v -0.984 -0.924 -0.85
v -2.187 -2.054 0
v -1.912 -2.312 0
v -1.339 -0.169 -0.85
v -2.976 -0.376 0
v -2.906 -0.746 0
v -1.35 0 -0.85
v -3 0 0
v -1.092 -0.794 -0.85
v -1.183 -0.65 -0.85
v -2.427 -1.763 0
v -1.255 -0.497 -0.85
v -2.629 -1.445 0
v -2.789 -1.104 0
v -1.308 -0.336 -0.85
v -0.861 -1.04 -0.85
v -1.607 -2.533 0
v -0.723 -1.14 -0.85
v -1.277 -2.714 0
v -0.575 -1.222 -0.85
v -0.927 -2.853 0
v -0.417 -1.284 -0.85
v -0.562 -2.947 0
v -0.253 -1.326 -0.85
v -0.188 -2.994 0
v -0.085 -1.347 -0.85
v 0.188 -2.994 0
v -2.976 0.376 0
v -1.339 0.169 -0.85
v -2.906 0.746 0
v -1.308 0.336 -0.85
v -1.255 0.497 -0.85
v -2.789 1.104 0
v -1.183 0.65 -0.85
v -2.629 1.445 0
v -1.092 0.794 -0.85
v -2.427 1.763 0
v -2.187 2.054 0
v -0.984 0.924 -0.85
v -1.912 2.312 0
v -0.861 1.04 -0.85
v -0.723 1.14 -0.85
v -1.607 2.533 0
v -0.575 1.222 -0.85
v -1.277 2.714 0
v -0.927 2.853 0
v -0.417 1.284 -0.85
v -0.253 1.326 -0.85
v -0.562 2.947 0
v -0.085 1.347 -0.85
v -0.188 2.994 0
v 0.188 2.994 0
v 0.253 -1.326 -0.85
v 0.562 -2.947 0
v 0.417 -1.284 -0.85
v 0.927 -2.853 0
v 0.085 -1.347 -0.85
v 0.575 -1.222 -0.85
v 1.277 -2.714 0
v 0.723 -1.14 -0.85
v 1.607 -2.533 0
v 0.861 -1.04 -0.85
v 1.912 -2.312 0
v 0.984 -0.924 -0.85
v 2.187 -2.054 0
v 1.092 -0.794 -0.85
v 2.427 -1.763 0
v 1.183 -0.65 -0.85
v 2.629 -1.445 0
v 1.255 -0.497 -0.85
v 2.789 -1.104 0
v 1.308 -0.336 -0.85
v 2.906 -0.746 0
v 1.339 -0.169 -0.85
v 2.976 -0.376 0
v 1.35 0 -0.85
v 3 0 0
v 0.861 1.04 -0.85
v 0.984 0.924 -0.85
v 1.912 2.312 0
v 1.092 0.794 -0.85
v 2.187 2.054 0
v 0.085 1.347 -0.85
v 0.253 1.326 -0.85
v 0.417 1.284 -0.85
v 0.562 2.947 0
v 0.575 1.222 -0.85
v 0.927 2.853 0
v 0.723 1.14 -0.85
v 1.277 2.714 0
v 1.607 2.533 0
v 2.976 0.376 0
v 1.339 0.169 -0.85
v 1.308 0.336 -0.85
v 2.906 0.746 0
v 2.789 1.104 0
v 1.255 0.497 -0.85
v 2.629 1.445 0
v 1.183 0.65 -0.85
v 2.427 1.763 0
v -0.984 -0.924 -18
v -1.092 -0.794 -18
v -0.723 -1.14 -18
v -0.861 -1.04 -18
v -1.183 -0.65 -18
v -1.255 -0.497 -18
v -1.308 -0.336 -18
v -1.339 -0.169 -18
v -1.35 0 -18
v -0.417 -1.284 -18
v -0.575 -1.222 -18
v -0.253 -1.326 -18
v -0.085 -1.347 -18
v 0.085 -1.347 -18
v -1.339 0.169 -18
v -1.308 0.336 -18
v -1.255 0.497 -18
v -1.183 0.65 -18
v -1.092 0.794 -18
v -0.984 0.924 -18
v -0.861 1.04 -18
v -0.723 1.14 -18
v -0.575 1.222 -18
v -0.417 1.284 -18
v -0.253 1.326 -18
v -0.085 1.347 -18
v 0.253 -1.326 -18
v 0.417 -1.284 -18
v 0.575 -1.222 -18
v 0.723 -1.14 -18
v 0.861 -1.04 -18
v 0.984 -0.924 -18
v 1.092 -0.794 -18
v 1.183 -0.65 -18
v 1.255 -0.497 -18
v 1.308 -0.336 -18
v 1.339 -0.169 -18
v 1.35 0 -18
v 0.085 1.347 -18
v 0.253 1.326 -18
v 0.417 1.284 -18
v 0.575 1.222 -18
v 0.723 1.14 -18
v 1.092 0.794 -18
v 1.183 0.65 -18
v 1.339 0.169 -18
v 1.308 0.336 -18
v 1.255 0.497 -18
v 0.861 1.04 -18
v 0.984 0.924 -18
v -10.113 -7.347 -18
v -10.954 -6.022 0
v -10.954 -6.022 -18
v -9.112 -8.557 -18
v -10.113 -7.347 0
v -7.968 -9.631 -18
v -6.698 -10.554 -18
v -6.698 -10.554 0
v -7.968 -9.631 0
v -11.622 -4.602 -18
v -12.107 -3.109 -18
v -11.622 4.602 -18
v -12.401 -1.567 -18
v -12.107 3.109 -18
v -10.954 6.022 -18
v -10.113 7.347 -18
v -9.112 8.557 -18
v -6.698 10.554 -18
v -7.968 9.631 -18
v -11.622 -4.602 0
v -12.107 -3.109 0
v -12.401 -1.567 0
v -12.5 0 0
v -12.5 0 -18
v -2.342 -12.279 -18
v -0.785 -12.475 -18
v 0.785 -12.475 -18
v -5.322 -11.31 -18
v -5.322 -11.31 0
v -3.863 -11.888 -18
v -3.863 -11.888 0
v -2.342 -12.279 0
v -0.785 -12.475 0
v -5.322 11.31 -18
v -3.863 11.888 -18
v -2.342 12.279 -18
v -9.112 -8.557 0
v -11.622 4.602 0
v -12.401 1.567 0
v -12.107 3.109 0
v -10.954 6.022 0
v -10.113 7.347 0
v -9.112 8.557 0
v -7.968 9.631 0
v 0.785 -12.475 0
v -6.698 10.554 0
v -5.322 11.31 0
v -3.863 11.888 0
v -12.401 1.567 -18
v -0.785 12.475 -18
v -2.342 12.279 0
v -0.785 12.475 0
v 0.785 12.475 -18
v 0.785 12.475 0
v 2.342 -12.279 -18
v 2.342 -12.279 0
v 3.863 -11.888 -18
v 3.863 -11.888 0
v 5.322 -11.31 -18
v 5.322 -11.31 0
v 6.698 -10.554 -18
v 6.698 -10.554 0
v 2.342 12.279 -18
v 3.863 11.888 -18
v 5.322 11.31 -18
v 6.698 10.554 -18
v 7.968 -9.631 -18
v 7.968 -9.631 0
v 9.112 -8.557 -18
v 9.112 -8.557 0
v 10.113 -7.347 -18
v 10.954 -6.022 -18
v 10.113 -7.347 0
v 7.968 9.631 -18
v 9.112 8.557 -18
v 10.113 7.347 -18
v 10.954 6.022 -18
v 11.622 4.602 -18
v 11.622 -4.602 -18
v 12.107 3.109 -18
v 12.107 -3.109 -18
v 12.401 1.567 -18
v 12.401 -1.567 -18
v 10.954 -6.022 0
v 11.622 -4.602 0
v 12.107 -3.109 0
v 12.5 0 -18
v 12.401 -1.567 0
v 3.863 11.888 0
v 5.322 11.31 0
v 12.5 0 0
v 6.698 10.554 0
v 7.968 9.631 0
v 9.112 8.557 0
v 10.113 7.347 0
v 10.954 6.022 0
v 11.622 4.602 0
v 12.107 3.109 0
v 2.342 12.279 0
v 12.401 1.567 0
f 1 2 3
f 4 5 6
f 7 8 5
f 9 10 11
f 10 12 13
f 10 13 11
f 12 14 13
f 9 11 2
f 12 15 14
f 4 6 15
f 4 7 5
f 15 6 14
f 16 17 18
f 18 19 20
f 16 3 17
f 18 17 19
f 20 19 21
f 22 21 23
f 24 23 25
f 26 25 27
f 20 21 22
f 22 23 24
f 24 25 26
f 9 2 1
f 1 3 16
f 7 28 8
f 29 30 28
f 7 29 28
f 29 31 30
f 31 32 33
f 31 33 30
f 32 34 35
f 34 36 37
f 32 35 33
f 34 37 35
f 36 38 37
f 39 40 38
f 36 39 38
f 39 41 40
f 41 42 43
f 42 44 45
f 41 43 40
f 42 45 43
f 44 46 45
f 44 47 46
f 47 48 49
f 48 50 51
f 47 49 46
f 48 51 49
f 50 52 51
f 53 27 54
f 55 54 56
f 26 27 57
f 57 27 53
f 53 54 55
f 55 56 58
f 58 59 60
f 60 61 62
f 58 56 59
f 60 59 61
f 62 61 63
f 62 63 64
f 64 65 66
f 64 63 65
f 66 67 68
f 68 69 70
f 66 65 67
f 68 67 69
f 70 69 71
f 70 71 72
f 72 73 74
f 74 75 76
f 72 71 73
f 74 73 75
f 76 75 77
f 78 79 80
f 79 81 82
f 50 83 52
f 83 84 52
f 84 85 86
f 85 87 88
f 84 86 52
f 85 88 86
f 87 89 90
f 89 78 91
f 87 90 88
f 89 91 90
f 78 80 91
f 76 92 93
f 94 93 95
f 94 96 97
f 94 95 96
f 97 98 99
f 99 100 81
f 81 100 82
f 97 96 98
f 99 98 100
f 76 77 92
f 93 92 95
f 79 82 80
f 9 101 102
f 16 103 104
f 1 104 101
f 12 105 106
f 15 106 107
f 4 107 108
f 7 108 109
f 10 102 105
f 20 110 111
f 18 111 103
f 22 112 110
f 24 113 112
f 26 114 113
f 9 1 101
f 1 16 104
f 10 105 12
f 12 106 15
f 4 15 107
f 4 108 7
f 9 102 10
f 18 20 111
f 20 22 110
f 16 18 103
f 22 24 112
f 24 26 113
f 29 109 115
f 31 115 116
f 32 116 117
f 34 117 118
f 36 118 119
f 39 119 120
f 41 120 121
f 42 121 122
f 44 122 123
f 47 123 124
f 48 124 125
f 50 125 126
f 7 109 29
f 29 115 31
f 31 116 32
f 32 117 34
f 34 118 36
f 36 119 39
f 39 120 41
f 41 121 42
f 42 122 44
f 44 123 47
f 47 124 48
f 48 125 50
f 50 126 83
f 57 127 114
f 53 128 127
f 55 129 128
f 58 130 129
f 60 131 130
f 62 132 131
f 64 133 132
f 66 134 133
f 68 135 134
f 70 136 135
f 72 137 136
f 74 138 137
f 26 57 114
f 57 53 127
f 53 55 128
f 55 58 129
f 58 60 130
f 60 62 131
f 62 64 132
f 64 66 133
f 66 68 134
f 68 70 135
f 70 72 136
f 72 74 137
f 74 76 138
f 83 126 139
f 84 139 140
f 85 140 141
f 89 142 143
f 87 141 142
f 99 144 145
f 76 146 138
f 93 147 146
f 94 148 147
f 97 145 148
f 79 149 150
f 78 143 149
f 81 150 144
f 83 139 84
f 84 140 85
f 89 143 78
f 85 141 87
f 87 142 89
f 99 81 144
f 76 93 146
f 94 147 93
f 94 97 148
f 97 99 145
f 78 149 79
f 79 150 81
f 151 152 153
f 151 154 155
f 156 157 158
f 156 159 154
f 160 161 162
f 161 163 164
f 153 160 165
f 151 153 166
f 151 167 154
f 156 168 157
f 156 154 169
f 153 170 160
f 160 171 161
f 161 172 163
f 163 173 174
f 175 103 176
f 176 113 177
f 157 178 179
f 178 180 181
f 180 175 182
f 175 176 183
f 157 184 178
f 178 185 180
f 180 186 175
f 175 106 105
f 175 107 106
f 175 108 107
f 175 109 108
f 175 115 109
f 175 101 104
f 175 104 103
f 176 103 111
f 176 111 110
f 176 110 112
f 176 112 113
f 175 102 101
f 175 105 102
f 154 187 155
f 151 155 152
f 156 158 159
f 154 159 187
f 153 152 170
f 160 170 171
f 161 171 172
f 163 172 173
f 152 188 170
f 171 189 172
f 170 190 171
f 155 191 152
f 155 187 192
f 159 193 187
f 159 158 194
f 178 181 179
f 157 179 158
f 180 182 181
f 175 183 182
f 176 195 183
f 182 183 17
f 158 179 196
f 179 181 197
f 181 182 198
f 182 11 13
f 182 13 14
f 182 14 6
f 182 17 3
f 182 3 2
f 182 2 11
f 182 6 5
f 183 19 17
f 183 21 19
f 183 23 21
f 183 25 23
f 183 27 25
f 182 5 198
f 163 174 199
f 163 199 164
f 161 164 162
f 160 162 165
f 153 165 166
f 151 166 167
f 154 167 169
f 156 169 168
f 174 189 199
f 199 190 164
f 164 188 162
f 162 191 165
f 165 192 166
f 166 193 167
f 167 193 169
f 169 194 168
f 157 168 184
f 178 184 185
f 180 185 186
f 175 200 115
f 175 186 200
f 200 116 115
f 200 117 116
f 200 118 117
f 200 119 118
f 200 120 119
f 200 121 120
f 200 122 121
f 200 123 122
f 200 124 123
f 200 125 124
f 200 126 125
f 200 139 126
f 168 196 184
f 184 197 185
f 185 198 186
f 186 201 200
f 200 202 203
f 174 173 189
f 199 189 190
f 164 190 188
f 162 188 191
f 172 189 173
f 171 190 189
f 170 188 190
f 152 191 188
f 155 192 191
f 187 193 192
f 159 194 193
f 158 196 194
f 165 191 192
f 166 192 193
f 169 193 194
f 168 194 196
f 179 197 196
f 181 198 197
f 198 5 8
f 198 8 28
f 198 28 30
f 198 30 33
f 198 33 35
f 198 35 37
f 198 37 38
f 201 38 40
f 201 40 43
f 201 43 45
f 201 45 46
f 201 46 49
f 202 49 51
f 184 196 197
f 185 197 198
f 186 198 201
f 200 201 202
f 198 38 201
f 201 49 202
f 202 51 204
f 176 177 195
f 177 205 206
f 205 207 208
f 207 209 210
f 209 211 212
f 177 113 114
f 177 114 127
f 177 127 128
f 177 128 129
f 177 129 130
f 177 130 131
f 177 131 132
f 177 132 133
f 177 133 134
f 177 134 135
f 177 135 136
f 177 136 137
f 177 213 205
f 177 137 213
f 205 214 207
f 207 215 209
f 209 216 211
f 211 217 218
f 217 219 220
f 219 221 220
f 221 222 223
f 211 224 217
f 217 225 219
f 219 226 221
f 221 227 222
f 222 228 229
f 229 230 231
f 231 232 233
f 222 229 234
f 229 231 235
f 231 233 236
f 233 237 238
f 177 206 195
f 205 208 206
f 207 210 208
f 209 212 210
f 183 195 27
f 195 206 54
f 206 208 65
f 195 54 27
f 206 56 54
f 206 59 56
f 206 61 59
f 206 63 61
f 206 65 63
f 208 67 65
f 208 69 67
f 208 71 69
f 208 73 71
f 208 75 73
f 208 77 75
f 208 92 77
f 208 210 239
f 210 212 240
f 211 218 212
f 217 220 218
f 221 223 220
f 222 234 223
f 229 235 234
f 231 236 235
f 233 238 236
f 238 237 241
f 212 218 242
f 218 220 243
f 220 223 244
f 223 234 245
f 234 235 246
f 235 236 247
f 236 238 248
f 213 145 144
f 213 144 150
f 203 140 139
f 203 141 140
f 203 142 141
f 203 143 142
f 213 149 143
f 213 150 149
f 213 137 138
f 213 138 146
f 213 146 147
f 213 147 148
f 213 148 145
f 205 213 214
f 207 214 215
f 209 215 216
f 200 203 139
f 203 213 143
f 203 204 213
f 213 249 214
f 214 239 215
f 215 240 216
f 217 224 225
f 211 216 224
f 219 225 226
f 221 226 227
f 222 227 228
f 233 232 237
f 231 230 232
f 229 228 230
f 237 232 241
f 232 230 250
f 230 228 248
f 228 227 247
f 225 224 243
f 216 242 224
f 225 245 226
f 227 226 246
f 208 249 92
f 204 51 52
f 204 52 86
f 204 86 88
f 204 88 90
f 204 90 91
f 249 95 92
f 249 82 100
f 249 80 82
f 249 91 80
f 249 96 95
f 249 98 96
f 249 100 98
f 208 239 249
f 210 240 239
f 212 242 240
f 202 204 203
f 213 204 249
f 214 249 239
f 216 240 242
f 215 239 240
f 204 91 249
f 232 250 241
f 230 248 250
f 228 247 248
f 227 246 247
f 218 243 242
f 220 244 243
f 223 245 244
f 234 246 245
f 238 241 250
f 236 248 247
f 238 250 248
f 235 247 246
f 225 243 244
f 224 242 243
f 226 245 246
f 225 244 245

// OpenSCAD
$fn = 50;

difference() {
	union() {
		translate(v = [0, 0, -18.0]) {
			cylinder(h = 18, r = 12.5);
		}
	}
	union() {
		translate(v = [0, 0, 0]) {
			rotate(a = [0, 0, 0]) {
				difference() {
					union() {
						translate(v = [0, 0, -21.0]) {
							cylinder(h = 21, r = 1.0);
						}
						translate(v = [0, 0, -0.85]) {
							cylinder(h = 0.85, r1 = 1.35, r2 = 3.0);
						}
						translate(v = [0, 0, -21.0]) {
							cylinder(h = 21, r = 1.35);
						}
						translate(v = [0, 0, -21.0]) {
							cylinder(h = 21, r = 1.0);
						}
					}
					union();
				}
			}
		}
	}
}
